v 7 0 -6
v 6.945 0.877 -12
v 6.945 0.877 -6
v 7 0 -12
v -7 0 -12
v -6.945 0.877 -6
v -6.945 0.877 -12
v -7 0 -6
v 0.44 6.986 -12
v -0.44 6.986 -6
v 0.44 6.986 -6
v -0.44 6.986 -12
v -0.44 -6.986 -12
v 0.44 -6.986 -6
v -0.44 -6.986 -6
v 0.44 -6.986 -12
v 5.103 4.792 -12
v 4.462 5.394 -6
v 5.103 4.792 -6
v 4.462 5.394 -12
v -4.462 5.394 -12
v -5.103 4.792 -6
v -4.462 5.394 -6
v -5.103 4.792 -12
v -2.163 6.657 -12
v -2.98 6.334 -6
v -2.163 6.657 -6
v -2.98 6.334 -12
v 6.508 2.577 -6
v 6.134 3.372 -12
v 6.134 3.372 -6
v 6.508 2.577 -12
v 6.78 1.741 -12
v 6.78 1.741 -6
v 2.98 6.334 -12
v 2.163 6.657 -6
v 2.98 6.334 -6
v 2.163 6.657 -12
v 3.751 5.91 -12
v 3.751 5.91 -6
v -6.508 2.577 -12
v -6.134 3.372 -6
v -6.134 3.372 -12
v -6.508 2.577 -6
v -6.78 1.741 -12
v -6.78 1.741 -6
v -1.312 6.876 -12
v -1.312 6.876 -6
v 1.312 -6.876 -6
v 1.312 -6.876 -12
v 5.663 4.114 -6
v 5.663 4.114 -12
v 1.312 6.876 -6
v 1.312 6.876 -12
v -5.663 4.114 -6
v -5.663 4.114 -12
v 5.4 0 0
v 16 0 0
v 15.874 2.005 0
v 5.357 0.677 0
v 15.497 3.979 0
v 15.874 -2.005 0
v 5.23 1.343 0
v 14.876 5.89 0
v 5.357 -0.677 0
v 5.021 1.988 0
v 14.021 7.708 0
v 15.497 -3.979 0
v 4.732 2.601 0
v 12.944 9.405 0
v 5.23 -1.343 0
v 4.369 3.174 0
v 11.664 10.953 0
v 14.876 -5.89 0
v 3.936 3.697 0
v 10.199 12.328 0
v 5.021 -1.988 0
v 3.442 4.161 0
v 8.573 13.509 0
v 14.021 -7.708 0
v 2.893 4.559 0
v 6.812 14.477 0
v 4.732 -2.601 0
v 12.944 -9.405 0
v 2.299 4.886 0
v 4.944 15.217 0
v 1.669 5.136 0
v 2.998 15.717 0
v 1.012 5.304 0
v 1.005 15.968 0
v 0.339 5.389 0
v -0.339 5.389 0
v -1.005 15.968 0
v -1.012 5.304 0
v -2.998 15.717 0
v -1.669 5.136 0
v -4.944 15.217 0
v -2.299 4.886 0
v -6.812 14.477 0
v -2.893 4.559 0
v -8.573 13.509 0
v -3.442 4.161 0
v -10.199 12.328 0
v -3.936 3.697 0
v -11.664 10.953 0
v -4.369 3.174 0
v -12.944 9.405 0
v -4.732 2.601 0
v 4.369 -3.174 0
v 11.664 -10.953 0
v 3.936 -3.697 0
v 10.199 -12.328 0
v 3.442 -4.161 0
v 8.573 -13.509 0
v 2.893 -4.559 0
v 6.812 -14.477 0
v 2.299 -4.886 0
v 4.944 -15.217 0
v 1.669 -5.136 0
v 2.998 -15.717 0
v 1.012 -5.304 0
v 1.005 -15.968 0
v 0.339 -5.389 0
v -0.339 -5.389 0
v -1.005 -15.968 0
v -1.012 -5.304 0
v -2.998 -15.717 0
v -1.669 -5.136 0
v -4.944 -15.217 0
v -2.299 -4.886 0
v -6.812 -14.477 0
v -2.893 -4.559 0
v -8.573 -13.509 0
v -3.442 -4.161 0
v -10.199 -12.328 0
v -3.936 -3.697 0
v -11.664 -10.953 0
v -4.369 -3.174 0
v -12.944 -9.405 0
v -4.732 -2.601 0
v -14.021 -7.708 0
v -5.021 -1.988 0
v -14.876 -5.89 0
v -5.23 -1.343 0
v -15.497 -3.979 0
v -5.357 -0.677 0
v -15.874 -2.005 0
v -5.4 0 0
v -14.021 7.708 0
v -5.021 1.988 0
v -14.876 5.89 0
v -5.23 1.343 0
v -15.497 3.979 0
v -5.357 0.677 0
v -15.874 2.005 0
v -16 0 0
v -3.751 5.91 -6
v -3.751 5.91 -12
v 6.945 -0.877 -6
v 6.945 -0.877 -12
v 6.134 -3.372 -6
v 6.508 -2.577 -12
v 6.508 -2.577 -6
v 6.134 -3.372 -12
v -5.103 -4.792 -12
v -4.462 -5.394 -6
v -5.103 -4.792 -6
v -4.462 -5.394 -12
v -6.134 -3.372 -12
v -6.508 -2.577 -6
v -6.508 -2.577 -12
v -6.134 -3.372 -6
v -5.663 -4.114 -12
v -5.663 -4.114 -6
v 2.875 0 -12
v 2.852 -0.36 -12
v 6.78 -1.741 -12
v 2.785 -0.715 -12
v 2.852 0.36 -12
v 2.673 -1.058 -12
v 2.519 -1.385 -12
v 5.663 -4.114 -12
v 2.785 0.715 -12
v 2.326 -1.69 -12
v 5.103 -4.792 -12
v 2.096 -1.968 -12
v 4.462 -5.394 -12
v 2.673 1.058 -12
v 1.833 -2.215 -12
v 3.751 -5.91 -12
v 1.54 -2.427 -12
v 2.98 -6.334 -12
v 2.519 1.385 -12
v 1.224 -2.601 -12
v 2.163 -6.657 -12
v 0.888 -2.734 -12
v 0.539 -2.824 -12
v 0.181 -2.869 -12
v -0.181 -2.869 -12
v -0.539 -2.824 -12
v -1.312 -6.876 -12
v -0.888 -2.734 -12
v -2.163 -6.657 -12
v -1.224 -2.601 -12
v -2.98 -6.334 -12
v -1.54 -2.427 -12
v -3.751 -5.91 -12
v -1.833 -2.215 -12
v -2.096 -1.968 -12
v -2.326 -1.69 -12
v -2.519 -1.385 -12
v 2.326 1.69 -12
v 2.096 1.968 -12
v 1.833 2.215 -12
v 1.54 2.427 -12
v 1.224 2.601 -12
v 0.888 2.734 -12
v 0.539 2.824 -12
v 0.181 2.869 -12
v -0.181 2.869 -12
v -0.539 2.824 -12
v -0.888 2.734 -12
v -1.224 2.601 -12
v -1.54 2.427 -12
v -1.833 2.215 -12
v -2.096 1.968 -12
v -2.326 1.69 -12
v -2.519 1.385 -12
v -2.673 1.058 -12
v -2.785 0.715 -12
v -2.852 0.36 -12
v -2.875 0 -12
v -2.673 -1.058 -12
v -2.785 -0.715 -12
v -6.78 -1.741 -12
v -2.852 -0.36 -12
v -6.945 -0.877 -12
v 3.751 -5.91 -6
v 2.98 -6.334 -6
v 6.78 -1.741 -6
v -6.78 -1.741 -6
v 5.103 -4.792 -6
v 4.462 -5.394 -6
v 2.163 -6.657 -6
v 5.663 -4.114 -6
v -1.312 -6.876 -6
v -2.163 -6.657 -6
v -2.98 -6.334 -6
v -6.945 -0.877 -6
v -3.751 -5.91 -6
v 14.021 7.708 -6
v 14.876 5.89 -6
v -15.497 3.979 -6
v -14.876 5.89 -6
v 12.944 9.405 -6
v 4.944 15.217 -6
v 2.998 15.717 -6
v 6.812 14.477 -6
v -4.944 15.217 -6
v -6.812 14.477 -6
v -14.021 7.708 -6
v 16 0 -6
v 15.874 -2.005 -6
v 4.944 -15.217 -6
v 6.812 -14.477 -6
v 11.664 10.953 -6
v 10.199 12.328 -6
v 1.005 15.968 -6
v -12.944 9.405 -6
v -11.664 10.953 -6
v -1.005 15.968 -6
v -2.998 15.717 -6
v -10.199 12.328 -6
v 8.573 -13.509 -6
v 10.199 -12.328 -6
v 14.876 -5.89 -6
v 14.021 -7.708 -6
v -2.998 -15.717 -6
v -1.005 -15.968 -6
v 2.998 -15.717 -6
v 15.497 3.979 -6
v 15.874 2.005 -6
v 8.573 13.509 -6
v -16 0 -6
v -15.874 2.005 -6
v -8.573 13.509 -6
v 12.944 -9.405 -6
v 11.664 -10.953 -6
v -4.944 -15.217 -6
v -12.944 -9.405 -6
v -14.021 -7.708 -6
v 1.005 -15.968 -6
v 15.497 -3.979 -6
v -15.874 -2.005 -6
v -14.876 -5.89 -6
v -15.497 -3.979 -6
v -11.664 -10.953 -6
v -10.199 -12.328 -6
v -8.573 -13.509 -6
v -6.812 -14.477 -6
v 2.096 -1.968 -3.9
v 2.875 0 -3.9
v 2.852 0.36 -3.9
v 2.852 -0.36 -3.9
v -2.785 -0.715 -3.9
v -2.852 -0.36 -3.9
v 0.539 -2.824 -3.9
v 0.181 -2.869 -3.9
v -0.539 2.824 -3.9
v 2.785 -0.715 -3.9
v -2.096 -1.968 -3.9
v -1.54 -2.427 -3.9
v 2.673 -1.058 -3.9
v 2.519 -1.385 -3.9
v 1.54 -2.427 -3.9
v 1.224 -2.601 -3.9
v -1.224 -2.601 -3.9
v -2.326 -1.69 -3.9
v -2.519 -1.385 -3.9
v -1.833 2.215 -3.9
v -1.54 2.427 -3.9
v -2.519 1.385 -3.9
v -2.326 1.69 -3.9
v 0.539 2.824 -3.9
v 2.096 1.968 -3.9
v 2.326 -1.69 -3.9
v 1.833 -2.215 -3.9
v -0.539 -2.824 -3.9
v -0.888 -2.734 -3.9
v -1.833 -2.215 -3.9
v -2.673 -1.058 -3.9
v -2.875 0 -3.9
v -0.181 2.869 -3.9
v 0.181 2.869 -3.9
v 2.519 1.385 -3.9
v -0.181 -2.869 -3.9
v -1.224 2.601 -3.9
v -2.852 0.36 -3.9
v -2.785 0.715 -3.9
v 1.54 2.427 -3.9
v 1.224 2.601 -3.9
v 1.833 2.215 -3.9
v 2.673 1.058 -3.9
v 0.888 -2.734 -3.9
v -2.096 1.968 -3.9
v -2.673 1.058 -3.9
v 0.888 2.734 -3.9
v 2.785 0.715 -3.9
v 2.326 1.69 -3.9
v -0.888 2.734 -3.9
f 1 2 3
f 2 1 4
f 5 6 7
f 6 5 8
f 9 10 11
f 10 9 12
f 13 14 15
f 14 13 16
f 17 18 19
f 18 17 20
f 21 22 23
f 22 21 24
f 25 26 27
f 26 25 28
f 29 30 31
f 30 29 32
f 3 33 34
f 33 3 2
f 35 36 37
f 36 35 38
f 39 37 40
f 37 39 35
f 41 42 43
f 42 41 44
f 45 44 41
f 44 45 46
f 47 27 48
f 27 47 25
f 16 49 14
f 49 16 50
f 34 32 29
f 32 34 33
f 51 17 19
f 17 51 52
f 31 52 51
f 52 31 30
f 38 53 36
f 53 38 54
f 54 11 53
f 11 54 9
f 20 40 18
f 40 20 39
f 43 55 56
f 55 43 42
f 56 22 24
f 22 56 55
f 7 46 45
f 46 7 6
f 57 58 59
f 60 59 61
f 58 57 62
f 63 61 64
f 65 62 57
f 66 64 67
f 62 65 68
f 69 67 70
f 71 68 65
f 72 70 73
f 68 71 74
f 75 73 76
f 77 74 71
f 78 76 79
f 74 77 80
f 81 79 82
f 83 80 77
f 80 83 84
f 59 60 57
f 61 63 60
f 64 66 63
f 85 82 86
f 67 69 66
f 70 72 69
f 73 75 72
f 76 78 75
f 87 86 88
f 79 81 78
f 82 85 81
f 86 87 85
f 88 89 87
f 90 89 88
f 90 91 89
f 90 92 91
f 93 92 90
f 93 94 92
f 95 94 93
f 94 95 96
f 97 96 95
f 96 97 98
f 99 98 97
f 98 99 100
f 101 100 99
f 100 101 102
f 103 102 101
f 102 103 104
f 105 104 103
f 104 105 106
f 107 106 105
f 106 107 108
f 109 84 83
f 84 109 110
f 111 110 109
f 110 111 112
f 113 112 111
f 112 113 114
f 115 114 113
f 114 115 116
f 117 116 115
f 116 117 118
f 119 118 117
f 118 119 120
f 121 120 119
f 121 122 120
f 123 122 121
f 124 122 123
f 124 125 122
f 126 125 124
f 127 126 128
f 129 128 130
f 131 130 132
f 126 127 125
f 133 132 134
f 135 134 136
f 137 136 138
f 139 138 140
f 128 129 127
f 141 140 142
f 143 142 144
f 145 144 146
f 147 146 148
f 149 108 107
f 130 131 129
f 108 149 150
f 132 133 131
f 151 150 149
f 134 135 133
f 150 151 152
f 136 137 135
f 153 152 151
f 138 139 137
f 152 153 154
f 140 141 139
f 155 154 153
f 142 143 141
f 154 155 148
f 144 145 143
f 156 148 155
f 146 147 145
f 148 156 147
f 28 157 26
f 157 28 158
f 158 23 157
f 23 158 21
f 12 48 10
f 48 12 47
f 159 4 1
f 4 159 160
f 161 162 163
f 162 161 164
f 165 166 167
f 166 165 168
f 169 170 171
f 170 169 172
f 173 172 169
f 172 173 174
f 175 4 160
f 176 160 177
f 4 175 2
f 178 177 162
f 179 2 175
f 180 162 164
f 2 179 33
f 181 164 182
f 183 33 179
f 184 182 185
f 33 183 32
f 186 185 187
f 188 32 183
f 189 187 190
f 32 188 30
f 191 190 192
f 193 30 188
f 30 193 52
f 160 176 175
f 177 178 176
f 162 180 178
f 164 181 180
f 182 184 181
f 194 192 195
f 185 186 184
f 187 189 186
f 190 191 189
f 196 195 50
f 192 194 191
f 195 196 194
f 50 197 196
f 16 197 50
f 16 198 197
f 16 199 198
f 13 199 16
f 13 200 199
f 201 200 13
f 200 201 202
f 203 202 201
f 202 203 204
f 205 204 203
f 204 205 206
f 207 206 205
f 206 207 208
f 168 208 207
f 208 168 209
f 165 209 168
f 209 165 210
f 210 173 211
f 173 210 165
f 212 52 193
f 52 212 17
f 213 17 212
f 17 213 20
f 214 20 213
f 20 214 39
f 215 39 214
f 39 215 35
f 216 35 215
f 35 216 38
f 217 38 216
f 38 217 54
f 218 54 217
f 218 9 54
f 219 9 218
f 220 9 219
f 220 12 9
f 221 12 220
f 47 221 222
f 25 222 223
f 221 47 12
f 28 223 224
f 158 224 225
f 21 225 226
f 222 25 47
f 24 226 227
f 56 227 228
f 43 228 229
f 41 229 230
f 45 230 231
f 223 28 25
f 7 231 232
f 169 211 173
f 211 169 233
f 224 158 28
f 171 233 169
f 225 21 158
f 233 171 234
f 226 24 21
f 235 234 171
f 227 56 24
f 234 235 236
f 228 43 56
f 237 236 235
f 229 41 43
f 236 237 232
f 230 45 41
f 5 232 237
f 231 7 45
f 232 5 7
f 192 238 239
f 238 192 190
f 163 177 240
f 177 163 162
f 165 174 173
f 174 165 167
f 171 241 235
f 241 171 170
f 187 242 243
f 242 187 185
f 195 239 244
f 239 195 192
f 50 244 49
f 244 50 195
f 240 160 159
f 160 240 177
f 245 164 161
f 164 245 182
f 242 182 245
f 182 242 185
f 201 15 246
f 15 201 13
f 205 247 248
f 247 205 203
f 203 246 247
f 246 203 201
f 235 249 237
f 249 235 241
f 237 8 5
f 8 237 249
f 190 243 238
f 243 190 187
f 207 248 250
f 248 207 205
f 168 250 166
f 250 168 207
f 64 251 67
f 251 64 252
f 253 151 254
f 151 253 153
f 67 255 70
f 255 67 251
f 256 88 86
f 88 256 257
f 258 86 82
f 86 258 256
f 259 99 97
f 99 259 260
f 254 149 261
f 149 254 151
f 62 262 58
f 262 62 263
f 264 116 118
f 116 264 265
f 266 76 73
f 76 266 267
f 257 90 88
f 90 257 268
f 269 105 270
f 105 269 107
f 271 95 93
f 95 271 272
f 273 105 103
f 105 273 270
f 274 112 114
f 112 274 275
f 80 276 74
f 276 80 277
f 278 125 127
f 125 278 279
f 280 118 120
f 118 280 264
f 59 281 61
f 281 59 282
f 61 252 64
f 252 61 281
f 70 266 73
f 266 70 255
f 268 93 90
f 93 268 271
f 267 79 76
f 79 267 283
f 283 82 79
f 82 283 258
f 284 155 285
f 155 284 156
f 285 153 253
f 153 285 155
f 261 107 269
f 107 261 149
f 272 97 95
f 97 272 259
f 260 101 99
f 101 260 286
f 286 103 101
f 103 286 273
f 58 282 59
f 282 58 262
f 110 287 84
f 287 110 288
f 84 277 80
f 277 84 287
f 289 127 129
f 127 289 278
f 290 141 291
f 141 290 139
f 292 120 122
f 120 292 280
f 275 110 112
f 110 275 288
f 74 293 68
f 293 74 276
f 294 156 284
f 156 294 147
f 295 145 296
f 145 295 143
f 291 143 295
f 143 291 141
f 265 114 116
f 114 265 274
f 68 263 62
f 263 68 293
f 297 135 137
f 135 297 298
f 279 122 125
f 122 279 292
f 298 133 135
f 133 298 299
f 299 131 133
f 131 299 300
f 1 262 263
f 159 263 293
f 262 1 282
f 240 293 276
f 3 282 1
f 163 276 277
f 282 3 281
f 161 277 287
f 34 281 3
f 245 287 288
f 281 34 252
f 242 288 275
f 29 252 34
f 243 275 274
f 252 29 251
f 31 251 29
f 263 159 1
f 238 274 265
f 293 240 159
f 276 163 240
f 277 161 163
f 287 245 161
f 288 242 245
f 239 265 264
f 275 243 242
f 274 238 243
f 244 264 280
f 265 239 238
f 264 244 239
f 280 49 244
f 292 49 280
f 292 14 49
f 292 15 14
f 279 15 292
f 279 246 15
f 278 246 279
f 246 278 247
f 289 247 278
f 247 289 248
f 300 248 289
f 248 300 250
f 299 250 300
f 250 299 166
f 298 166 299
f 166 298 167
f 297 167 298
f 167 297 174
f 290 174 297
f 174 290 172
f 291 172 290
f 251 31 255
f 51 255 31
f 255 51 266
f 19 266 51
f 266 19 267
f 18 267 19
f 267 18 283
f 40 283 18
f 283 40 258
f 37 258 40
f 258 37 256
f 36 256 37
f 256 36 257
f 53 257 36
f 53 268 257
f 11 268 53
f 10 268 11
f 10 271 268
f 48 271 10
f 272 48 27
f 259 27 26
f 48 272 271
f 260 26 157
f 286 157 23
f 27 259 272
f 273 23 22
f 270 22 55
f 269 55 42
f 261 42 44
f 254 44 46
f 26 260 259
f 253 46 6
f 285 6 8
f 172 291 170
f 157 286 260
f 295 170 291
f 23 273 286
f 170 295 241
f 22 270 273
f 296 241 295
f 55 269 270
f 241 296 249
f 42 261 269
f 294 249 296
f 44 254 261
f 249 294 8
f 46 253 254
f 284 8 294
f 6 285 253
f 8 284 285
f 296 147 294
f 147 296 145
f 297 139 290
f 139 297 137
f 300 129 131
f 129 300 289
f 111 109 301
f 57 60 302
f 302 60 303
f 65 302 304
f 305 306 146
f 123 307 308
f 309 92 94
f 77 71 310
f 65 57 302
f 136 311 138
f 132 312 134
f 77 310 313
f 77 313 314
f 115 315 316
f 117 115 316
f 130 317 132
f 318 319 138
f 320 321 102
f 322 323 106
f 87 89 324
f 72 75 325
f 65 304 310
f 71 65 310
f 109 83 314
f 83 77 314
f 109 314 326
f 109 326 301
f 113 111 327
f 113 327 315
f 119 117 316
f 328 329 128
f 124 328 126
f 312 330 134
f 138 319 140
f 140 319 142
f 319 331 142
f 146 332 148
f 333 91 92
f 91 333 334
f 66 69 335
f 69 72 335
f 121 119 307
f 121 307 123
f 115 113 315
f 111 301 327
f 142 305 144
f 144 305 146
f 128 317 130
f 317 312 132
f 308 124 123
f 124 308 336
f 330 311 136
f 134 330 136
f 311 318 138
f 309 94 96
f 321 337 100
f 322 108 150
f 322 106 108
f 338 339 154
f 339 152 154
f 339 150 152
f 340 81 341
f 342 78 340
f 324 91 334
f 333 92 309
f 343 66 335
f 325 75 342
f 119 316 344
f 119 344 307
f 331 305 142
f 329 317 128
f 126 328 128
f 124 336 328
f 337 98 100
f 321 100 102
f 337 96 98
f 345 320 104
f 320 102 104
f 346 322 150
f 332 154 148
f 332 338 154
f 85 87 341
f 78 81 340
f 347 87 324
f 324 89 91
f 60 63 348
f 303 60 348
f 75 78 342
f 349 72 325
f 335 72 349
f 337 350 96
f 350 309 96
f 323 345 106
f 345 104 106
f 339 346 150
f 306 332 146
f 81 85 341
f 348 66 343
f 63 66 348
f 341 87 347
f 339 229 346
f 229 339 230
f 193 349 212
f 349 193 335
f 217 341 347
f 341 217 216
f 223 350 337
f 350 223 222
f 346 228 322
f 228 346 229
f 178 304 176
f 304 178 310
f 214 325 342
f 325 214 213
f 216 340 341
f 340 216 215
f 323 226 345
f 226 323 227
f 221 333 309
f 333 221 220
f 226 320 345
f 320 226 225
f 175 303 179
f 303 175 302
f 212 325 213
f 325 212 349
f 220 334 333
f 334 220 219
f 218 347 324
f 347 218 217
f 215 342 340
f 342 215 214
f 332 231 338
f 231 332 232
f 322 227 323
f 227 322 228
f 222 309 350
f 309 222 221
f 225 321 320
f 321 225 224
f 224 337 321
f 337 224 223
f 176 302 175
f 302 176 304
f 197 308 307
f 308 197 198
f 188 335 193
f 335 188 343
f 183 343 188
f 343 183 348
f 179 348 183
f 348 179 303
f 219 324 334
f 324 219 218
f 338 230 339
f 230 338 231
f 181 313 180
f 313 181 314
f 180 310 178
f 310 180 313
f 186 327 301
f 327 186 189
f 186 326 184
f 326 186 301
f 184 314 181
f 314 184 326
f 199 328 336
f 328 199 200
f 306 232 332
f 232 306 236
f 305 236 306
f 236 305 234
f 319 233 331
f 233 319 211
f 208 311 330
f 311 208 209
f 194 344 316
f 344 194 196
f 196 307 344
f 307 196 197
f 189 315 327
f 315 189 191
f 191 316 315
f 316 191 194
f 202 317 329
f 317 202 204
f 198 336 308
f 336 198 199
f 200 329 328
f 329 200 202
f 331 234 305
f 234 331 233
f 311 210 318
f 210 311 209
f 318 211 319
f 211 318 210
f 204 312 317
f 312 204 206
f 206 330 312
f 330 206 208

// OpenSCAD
$fn = 50;


difference() {
	union() {
		translate(v = [0, 0, -12.0000000000]) {
			cylinder(h = 12, r = 7.0000000000);
		}
		translate(v = [0, 0, -6.0000000000]) {
			cylinder(h = 6, r = 16.0000000000);
		}
	}
	union() {
		translate(v = [0, 0, 0]) {
			rotate(a = [0, 0, 0]) {
				difference() {
					union() {
						#translate(v = [0, 0, -12.0000000000]) {
							cylinder(h = 12, r = 2.6000000000);
						}
						#translate(v = [0, 0, -3.9000000000]) {
							cylinder(h = 3.9000000000, r = 7.0000000000, r1 = 2.8750000000, r2 = 5.4000000000);
						}
						#translate(v = [0, 0, -12.0000000000]) {
							cylinder(h = 12, r = 2.8750000000);
						}
						#translate(v = [0, 0, -12.0000000000]) {
							cylinder(h = 12, r = 2.6000000000);
						}
					}
					union();
				}
			}
		}
	}
}
